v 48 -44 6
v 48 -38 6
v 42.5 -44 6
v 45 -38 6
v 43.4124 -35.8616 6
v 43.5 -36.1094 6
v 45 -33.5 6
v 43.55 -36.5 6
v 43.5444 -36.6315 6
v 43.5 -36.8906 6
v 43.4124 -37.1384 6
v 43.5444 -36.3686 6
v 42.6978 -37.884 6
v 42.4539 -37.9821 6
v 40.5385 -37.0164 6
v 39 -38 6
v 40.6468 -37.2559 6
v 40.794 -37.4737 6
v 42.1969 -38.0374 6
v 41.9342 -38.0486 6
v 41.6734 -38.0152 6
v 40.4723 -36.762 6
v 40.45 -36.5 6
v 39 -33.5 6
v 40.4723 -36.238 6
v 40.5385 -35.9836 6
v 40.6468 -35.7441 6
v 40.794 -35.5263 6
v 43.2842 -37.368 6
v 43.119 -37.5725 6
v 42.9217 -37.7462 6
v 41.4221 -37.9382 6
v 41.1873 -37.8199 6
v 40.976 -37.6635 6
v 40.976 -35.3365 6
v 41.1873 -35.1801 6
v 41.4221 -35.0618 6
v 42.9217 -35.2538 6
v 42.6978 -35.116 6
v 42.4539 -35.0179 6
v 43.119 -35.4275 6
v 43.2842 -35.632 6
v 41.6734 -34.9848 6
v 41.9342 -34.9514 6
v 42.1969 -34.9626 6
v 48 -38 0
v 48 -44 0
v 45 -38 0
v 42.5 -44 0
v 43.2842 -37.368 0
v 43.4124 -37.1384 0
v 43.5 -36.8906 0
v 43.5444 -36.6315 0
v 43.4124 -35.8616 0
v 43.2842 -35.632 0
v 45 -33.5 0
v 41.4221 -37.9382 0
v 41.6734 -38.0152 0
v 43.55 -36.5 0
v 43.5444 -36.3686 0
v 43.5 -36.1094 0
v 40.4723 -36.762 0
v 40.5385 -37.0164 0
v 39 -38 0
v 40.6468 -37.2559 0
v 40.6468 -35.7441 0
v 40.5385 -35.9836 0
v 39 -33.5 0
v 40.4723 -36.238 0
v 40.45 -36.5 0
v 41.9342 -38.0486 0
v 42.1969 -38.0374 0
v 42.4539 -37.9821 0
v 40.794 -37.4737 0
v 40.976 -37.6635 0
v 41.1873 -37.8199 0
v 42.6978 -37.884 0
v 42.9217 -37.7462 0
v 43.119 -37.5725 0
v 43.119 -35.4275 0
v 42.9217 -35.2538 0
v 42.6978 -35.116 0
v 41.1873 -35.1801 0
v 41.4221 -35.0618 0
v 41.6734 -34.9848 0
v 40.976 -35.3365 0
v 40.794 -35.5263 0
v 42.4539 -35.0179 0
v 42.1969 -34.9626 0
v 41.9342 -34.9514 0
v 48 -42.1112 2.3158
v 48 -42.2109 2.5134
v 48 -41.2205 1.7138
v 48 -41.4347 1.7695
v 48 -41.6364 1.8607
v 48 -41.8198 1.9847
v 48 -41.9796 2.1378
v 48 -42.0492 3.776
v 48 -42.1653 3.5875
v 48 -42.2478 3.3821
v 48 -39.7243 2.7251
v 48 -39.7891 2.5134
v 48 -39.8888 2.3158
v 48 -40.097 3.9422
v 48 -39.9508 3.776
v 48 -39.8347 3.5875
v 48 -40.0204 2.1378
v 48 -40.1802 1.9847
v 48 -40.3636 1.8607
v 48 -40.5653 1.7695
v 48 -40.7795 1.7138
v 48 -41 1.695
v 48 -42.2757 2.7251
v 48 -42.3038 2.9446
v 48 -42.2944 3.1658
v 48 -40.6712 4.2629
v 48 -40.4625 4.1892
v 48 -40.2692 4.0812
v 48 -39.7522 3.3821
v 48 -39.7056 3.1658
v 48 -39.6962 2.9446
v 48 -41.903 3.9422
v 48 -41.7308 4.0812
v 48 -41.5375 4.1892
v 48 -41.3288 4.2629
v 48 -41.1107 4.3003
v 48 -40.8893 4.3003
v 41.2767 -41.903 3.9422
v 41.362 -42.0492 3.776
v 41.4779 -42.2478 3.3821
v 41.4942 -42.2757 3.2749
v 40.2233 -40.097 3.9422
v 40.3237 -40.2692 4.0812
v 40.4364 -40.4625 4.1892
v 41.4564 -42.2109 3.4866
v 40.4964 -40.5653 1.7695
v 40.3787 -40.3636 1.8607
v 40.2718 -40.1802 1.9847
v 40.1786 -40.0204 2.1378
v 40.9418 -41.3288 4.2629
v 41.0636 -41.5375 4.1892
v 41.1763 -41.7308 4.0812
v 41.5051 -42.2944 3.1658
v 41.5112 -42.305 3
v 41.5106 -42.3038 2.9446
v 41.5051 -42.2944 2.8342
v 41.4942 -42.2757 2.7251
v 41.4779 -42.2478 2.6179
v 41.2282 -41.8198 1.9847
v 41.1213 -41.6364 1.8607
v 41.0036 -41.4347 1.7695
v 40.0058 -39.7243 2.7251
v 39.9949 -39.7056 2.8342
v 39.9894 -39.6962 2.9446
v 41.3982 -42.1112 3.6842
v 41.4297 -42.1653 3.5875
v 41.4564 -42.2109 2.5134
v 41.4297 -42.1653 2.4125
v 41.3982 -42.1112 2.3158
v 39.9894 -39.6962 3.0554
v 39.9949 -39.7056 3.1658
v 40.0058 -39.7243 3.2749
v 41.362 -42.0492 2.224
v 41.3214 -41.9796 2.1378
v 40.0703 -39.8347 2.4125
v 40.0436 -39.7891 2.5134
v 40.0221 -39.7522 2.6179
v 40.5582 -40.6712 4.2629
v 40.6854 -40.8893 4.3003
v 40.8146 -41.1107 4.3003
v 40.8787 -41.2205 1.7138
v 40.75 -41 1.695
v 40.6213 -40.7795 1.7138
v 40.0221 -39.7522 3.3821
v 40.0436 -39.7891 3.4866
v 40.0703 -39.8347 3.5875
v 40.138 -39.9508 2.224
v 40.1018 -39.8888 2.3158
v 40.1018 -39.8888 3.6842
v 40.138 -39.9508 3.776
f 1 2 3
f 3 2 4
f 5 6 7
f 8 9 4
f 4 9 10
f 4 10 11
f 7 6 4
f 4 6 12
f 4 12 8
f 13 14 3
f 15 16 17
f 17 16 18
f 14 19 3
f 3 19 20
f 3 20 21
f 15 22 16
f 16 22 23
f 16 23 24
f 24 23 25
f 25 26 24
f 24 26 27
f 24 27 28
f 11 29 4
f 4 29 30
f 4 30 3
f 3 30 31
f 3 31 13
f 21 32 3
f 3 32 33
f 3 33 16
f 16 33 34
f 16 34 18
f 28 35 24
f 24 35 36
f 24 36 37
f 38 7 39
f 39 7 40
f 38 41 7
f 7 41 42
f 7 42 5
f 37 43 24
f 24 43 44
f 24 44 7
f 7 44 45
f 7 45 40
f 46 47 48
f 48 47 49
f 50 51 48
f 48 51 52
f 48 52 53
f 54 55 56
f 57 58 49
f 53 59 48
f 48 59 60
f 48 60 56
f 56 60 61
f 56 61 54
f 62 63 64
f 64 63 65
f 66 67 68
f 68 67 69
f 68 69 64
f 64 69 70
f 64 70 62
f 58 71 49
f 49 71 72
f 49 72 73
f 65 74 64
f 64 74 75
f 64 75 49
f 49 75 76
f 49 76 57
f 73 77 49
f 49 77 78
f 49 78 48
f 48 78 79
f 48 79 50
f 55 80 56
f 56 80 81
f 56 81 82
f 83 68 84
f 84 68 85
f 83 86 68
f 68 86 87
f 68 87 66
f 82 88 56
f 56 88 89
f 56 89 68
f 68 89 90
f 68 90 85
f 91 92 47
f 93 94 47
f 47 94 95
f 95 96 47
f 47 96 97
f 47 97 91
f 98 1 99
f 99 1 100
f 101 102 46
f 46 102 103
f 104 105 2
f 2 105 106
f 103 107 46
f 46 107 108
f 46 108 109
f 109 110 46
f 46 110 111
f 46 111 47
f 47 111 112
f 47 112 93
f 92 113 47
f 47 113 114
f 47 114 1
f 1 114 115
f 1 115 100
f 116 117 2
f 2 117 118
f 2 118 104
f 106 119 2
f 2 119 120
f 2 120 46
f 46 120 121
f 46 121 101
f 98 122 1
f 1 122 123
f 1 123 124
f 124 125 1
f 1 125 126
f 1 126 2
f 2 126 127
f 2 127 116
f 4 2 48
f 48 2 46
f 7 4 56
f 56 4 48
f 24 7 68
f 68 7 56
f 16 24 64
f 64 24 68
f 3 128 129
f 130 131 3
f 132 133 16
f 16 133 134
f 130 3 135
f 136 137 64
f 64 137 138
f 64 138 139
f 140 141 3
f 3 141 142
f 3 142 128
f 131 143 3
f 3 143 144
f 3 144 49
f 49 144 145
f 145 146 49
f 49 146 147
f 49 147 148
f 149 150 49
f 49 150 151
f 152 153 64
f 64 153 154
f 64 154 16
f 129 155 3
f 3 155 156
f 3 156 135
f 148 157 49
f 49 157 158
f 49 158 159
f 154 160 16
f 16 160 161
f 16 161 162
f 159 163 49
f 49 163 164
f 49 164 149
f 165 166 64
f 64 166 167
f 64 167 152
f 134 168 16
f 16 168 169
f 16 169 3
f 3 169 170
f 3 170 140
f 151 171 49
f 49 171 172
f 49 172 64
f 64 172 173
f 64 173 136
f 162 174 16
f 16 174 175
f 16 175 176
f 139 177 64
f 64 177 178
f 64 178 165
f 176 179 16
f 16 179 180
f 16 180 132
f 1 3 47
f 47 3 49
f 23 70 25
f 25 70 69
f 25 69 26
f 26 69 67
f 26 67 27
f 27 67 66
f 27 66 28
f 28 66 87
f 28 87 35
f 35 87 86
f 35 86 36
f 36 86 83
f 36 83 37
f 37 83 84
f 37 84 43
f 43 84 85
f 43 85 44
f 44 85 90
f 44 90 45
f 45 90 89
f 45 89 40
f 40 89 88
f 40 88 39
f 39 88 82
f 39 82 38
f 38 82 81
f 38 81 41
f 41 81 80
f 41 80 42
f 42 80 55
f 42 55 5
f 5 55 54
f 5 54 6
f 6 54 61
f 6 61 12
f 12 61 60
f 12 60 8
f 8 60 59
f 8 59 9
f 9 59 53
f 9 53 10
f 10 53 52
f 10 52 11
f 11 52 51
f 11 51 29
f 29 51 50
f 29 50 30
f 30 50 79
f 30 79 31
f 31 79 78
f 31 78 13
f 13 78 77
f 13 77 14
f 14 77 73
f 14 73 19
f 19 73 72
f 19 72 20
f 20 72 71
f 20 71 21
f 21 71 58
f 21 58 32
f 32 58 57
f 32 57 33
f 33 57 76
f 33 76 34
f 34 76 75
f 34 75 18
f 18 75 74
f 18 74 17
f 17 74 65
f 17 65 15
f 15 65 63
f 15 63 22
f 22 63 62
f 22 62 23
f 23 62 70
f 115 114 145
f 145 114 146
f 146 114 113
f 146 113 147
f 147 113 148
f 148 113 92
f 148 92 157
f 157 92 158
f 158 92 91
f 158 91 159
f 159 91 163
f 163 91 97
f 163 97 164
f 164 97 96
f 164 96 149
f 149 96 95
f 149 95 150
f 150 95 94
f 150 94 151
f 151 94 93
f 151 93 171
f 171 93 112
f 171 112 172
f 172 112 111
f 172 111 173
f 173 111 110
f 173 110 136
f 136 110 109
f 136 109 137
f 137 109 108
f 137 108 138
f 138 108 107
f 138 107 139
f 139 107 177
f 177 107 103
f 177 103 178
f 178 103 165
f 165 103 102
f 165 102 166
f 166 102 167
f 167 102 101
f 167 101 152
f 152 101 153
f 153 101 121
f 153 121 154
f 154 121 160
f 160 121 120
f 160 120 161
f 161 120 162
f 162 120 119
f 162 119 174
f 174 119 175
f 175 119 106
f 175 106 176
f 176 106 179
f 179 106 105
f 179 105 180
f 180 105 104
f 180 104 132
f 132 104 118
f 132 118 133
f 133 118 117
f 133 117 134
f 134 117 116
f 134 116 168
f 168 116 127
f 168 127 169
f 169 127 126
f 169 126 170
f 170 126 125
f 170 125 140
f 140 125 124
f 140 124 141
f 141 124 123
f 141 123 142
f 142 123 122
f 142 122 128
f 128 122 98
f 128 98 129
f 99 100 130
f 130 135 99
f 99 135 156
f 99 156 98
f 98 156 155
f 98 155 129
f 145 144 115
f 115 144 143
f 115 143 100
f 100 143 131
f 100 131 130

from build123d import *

# Parameters (mm, degrees)
SKETCH1_R           = 1.55
BOSS_EXTRUDE1_DEPTH = 6
SKETCH3_R           = 1.305
CUT_EXTRUDE3_DEPTH  = 10


with BuildPart() as part:
    # Sketch1 → Boss-Extrude1 (new body)
    with BuildSketch(Plane.XY):
        Polygon((48, -38), (45, -38), (45, -33.5), (39, -33.5), (39, -38), (42.5, -44), (48, -44), align=None)
        with Locations((42, -36.5)):
            Circle(SKETCH1_R, mode=Mode.SUBTRACT)
    extrude(amount=BOSS_EXTRUDE1_DEPTH)

    # Sketch3 → Cut-Extrude3 (cut, through all)
    with BuildSketch(Plane(origin=(48, 0, 0), x_dir=(0, 0, -1), z_dir=(1, 0, 0))):
        with Locations((-3, -41)):
            Circle(SKETCH3_R)
    extrude(amount=-CUT_EXTRUDE3_DEPTH, mode=Mode.SUBTRACT)


solid = part.part
